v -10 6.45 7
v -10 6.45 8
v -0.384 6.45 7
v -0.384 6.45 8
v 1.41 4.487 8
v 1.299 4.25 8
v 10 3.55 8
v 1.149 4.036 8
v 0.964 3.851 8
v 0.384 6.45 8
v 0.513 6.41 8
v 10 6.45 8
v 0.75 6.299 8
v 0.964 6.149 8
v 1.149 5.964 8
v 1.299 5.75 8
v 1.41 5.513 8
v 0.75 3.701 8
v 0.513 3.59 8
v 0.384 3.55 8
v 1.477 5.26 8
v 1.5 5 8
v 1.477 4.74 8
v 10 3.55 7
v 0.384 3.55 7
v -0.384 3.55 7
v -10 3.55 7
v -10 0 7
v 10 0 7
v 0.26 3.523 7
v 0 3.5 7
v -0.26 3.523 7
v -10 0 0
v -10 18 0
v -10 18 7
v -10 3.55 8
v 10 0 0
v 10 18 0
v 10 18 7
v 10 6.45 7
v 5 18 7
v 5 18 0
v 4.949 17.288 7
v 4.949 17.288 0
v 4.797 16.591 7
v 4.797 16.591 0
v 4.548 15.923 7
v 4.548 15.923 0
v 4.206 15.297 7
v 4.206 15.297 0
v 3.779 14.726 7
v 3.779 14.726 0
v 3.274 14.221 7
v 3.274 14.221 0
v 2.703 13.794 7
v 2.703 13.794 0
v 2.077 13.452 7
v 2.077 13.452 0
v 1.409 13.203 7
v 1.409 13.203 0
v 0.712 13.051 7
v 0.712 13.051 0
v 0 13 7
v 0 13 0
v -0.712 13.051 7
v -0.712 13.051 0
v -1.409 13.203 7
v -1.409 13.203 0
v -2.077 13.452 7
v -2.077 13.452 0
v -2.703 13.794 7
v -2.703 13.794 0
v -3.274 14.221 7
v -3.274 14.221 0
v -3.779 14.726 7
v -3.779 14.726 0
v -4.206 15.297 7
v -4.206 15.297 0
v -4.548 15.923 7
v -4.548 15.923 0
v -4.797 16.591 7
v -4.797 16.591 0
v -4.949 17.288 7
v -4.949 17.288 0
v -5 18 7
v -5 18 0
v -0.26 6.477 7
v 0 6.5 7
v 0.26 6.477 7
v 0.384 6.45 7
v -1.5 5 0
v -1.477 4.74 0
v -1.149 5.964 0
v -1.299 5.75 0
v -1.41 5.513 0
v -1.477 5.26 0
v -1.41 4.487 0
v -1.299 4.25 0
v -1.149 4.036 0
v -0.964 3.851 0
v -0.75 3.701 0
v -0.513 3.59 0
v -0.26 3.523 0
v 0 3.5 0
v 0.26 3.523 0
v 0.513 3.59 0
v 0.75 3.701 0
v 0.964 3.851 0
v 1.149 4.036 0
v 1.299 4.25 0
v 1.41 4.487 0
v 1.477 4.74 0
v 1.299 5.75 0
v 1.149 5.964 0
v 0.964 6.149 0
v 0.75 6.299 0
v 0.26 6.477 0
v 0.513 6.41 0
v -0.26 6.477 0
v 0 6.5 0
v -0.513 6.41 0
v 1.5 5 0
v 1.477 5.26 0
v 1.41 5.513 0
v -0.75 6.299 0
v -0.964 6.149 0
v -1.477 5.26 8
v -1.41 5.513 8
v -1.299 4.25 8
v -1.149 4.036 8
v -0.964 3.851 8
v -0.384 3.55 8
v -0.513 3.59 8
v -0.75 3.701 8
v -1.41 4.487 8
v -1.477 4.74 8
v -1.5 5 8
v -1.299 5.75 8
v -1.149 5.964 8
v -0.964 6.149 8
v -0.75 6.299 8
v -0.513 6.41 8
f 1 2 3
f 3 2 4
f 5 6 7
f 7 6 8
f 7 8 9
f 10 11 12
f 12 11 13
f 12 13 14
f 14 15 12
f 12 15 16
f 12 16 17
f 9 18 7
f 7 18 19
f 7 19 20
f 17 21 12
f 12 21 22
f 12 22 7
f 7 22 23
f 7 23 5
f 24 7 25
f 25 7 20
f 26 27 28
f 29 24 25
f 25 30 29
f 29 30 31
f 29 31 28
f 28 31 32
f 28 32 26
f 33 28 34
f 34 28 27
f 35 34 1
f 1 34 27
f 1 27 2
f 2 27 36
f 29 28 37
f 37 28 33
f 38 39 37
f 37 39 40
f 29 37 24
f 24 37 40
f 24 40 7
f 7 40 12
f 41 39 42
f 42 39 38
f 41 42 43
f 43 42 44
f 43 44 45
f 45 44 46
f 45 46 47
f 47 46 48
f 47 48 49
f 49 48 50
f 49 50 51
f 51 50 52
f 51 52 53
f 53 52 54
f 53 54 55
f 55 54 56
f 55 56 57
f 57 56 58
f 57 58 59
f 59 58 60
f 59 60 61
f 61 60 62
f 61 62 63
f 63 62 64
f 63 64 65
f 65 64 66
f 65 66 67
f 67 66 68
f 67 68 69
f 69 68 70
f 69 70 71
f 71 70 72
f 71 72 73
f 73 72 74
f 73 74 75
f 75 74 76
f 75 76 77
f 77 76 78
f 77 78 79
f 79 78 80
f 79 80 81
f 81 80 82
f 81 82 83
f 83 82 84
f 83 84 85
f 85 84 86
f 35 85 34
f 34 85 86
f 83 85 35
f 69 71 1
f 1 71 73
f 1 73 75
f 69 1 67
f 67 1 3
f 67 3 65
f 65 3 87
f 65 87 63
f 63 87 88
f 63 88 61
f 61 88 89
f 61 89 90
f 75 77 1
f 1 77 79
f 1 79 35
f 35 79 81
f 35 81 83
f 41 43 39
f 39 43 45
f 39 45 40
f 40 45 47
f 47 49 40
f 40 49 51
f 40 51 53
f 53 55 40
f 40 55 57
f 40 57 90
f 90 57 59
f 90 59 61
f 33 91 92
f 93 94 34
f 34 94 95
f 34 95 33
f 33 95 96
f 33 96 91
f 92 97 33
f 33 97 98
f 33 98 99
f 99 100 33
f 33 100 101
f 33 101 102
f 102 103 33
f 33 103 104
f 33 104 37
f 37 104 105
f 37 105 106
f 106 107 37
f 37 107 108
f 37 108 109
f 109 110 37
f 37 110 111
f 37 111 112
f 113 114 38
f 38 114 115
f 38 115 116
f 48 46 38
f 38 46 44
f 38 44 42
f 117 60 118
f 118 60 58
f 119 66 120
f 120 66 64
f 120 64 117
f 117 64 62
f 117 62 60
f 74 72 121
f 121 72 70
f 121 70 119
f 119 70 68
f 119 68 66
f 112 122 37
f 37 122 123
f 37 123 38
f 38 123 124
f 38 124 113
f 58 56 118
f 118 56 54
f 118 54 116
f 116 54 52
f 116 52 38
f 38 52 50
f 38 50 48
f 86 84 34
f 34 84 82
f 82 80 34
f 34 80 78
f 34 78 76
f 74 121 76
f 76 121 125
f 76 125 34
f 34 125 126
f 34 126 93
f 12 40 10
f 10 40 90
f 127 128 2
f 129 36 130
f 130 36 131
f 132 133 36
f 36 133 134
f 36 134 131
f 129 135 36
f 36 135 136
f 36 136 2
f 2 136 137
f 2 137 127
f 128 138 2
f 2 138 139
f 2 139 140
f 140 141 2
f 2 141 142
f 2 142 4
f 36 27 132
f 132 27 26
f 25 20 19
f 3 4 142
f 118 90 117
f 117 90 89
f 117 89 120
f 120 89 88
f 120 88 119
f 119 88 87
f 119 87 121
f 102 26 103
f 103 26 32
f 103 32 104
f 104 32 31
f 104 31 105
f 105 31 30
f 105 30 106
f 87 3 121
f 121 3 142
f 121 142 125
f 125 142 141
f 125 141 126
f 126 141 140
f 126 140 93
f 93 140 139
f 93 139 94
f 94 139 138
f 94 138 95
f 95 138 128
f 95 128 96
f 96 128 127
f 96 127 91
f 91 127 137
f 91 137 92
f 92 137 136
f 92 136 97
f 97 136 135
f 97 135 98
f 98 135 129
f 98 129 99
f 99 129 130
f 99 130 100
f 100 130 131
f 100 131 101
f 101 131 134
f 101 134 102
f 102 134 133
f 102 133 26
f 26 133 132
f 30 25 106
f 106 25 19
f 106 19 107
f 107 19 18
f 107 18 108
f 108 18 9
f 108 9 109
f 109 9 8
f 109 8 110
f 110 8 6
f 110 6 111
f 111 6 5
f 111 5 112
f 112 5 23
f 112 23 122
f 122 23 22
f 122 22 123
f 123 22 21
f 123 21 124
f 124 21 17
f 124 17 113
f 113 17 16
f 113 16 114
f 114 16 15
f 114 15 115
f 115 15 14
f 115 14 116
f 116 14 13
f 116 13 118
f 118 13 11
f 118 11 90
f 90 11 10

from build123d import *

# Parameters (mm, degrees)
BOSS_EXTRUDE1_DEPTH = 7
SKETCH2_W           = 1
SKETCH2_H           = 2.9
BOSS_EXTRUDE2_DEPTH = 20
SKETCH3_R           = 1.5
CUT_EXTRUDE1_DEPTH  = 9


with BuildPart() as part:
    # Sketch1 → Boss-Extrude1 (new body)
    with BuildSketch(Plane.XY):
        with BuildLine():
            Line((-10, 0), (10, 0))
            Line((10, 0), (10, 18))
            Line((10, 18), (5, 18))
            ThreePointArc((5, 18), (0, 13), (-5, 18))
            Line((-5, 18), (-10, 18))
            Line((-10, 18), (-10, 0))
        make_face()
    extrude(amount=BOSS_EXTRUDE1_DEPTH)

    # Sketch2 → Boss-Extrude2 (add)
    with BuildSketch(Plane.ZY.offset(10)):
        with Locations((7.5, 5)):
            Rectangle(SKETCH2_W, SKETCH2_H)
    extrude(amount=-BOSS_EXTRUDE2_DEPTH)

    # Sketch3 → Cut-Extrude1 (cut, through all)
    with BuildSketch(Plane.XY.offset(8)):
        with Locations((0, 5)):
            Circle(SKETCH3_R)
    extrude(amount=-CUT_EXTRUDE1_DEPTH, mode=Mode.SUBTRACT)


solid = part.part
